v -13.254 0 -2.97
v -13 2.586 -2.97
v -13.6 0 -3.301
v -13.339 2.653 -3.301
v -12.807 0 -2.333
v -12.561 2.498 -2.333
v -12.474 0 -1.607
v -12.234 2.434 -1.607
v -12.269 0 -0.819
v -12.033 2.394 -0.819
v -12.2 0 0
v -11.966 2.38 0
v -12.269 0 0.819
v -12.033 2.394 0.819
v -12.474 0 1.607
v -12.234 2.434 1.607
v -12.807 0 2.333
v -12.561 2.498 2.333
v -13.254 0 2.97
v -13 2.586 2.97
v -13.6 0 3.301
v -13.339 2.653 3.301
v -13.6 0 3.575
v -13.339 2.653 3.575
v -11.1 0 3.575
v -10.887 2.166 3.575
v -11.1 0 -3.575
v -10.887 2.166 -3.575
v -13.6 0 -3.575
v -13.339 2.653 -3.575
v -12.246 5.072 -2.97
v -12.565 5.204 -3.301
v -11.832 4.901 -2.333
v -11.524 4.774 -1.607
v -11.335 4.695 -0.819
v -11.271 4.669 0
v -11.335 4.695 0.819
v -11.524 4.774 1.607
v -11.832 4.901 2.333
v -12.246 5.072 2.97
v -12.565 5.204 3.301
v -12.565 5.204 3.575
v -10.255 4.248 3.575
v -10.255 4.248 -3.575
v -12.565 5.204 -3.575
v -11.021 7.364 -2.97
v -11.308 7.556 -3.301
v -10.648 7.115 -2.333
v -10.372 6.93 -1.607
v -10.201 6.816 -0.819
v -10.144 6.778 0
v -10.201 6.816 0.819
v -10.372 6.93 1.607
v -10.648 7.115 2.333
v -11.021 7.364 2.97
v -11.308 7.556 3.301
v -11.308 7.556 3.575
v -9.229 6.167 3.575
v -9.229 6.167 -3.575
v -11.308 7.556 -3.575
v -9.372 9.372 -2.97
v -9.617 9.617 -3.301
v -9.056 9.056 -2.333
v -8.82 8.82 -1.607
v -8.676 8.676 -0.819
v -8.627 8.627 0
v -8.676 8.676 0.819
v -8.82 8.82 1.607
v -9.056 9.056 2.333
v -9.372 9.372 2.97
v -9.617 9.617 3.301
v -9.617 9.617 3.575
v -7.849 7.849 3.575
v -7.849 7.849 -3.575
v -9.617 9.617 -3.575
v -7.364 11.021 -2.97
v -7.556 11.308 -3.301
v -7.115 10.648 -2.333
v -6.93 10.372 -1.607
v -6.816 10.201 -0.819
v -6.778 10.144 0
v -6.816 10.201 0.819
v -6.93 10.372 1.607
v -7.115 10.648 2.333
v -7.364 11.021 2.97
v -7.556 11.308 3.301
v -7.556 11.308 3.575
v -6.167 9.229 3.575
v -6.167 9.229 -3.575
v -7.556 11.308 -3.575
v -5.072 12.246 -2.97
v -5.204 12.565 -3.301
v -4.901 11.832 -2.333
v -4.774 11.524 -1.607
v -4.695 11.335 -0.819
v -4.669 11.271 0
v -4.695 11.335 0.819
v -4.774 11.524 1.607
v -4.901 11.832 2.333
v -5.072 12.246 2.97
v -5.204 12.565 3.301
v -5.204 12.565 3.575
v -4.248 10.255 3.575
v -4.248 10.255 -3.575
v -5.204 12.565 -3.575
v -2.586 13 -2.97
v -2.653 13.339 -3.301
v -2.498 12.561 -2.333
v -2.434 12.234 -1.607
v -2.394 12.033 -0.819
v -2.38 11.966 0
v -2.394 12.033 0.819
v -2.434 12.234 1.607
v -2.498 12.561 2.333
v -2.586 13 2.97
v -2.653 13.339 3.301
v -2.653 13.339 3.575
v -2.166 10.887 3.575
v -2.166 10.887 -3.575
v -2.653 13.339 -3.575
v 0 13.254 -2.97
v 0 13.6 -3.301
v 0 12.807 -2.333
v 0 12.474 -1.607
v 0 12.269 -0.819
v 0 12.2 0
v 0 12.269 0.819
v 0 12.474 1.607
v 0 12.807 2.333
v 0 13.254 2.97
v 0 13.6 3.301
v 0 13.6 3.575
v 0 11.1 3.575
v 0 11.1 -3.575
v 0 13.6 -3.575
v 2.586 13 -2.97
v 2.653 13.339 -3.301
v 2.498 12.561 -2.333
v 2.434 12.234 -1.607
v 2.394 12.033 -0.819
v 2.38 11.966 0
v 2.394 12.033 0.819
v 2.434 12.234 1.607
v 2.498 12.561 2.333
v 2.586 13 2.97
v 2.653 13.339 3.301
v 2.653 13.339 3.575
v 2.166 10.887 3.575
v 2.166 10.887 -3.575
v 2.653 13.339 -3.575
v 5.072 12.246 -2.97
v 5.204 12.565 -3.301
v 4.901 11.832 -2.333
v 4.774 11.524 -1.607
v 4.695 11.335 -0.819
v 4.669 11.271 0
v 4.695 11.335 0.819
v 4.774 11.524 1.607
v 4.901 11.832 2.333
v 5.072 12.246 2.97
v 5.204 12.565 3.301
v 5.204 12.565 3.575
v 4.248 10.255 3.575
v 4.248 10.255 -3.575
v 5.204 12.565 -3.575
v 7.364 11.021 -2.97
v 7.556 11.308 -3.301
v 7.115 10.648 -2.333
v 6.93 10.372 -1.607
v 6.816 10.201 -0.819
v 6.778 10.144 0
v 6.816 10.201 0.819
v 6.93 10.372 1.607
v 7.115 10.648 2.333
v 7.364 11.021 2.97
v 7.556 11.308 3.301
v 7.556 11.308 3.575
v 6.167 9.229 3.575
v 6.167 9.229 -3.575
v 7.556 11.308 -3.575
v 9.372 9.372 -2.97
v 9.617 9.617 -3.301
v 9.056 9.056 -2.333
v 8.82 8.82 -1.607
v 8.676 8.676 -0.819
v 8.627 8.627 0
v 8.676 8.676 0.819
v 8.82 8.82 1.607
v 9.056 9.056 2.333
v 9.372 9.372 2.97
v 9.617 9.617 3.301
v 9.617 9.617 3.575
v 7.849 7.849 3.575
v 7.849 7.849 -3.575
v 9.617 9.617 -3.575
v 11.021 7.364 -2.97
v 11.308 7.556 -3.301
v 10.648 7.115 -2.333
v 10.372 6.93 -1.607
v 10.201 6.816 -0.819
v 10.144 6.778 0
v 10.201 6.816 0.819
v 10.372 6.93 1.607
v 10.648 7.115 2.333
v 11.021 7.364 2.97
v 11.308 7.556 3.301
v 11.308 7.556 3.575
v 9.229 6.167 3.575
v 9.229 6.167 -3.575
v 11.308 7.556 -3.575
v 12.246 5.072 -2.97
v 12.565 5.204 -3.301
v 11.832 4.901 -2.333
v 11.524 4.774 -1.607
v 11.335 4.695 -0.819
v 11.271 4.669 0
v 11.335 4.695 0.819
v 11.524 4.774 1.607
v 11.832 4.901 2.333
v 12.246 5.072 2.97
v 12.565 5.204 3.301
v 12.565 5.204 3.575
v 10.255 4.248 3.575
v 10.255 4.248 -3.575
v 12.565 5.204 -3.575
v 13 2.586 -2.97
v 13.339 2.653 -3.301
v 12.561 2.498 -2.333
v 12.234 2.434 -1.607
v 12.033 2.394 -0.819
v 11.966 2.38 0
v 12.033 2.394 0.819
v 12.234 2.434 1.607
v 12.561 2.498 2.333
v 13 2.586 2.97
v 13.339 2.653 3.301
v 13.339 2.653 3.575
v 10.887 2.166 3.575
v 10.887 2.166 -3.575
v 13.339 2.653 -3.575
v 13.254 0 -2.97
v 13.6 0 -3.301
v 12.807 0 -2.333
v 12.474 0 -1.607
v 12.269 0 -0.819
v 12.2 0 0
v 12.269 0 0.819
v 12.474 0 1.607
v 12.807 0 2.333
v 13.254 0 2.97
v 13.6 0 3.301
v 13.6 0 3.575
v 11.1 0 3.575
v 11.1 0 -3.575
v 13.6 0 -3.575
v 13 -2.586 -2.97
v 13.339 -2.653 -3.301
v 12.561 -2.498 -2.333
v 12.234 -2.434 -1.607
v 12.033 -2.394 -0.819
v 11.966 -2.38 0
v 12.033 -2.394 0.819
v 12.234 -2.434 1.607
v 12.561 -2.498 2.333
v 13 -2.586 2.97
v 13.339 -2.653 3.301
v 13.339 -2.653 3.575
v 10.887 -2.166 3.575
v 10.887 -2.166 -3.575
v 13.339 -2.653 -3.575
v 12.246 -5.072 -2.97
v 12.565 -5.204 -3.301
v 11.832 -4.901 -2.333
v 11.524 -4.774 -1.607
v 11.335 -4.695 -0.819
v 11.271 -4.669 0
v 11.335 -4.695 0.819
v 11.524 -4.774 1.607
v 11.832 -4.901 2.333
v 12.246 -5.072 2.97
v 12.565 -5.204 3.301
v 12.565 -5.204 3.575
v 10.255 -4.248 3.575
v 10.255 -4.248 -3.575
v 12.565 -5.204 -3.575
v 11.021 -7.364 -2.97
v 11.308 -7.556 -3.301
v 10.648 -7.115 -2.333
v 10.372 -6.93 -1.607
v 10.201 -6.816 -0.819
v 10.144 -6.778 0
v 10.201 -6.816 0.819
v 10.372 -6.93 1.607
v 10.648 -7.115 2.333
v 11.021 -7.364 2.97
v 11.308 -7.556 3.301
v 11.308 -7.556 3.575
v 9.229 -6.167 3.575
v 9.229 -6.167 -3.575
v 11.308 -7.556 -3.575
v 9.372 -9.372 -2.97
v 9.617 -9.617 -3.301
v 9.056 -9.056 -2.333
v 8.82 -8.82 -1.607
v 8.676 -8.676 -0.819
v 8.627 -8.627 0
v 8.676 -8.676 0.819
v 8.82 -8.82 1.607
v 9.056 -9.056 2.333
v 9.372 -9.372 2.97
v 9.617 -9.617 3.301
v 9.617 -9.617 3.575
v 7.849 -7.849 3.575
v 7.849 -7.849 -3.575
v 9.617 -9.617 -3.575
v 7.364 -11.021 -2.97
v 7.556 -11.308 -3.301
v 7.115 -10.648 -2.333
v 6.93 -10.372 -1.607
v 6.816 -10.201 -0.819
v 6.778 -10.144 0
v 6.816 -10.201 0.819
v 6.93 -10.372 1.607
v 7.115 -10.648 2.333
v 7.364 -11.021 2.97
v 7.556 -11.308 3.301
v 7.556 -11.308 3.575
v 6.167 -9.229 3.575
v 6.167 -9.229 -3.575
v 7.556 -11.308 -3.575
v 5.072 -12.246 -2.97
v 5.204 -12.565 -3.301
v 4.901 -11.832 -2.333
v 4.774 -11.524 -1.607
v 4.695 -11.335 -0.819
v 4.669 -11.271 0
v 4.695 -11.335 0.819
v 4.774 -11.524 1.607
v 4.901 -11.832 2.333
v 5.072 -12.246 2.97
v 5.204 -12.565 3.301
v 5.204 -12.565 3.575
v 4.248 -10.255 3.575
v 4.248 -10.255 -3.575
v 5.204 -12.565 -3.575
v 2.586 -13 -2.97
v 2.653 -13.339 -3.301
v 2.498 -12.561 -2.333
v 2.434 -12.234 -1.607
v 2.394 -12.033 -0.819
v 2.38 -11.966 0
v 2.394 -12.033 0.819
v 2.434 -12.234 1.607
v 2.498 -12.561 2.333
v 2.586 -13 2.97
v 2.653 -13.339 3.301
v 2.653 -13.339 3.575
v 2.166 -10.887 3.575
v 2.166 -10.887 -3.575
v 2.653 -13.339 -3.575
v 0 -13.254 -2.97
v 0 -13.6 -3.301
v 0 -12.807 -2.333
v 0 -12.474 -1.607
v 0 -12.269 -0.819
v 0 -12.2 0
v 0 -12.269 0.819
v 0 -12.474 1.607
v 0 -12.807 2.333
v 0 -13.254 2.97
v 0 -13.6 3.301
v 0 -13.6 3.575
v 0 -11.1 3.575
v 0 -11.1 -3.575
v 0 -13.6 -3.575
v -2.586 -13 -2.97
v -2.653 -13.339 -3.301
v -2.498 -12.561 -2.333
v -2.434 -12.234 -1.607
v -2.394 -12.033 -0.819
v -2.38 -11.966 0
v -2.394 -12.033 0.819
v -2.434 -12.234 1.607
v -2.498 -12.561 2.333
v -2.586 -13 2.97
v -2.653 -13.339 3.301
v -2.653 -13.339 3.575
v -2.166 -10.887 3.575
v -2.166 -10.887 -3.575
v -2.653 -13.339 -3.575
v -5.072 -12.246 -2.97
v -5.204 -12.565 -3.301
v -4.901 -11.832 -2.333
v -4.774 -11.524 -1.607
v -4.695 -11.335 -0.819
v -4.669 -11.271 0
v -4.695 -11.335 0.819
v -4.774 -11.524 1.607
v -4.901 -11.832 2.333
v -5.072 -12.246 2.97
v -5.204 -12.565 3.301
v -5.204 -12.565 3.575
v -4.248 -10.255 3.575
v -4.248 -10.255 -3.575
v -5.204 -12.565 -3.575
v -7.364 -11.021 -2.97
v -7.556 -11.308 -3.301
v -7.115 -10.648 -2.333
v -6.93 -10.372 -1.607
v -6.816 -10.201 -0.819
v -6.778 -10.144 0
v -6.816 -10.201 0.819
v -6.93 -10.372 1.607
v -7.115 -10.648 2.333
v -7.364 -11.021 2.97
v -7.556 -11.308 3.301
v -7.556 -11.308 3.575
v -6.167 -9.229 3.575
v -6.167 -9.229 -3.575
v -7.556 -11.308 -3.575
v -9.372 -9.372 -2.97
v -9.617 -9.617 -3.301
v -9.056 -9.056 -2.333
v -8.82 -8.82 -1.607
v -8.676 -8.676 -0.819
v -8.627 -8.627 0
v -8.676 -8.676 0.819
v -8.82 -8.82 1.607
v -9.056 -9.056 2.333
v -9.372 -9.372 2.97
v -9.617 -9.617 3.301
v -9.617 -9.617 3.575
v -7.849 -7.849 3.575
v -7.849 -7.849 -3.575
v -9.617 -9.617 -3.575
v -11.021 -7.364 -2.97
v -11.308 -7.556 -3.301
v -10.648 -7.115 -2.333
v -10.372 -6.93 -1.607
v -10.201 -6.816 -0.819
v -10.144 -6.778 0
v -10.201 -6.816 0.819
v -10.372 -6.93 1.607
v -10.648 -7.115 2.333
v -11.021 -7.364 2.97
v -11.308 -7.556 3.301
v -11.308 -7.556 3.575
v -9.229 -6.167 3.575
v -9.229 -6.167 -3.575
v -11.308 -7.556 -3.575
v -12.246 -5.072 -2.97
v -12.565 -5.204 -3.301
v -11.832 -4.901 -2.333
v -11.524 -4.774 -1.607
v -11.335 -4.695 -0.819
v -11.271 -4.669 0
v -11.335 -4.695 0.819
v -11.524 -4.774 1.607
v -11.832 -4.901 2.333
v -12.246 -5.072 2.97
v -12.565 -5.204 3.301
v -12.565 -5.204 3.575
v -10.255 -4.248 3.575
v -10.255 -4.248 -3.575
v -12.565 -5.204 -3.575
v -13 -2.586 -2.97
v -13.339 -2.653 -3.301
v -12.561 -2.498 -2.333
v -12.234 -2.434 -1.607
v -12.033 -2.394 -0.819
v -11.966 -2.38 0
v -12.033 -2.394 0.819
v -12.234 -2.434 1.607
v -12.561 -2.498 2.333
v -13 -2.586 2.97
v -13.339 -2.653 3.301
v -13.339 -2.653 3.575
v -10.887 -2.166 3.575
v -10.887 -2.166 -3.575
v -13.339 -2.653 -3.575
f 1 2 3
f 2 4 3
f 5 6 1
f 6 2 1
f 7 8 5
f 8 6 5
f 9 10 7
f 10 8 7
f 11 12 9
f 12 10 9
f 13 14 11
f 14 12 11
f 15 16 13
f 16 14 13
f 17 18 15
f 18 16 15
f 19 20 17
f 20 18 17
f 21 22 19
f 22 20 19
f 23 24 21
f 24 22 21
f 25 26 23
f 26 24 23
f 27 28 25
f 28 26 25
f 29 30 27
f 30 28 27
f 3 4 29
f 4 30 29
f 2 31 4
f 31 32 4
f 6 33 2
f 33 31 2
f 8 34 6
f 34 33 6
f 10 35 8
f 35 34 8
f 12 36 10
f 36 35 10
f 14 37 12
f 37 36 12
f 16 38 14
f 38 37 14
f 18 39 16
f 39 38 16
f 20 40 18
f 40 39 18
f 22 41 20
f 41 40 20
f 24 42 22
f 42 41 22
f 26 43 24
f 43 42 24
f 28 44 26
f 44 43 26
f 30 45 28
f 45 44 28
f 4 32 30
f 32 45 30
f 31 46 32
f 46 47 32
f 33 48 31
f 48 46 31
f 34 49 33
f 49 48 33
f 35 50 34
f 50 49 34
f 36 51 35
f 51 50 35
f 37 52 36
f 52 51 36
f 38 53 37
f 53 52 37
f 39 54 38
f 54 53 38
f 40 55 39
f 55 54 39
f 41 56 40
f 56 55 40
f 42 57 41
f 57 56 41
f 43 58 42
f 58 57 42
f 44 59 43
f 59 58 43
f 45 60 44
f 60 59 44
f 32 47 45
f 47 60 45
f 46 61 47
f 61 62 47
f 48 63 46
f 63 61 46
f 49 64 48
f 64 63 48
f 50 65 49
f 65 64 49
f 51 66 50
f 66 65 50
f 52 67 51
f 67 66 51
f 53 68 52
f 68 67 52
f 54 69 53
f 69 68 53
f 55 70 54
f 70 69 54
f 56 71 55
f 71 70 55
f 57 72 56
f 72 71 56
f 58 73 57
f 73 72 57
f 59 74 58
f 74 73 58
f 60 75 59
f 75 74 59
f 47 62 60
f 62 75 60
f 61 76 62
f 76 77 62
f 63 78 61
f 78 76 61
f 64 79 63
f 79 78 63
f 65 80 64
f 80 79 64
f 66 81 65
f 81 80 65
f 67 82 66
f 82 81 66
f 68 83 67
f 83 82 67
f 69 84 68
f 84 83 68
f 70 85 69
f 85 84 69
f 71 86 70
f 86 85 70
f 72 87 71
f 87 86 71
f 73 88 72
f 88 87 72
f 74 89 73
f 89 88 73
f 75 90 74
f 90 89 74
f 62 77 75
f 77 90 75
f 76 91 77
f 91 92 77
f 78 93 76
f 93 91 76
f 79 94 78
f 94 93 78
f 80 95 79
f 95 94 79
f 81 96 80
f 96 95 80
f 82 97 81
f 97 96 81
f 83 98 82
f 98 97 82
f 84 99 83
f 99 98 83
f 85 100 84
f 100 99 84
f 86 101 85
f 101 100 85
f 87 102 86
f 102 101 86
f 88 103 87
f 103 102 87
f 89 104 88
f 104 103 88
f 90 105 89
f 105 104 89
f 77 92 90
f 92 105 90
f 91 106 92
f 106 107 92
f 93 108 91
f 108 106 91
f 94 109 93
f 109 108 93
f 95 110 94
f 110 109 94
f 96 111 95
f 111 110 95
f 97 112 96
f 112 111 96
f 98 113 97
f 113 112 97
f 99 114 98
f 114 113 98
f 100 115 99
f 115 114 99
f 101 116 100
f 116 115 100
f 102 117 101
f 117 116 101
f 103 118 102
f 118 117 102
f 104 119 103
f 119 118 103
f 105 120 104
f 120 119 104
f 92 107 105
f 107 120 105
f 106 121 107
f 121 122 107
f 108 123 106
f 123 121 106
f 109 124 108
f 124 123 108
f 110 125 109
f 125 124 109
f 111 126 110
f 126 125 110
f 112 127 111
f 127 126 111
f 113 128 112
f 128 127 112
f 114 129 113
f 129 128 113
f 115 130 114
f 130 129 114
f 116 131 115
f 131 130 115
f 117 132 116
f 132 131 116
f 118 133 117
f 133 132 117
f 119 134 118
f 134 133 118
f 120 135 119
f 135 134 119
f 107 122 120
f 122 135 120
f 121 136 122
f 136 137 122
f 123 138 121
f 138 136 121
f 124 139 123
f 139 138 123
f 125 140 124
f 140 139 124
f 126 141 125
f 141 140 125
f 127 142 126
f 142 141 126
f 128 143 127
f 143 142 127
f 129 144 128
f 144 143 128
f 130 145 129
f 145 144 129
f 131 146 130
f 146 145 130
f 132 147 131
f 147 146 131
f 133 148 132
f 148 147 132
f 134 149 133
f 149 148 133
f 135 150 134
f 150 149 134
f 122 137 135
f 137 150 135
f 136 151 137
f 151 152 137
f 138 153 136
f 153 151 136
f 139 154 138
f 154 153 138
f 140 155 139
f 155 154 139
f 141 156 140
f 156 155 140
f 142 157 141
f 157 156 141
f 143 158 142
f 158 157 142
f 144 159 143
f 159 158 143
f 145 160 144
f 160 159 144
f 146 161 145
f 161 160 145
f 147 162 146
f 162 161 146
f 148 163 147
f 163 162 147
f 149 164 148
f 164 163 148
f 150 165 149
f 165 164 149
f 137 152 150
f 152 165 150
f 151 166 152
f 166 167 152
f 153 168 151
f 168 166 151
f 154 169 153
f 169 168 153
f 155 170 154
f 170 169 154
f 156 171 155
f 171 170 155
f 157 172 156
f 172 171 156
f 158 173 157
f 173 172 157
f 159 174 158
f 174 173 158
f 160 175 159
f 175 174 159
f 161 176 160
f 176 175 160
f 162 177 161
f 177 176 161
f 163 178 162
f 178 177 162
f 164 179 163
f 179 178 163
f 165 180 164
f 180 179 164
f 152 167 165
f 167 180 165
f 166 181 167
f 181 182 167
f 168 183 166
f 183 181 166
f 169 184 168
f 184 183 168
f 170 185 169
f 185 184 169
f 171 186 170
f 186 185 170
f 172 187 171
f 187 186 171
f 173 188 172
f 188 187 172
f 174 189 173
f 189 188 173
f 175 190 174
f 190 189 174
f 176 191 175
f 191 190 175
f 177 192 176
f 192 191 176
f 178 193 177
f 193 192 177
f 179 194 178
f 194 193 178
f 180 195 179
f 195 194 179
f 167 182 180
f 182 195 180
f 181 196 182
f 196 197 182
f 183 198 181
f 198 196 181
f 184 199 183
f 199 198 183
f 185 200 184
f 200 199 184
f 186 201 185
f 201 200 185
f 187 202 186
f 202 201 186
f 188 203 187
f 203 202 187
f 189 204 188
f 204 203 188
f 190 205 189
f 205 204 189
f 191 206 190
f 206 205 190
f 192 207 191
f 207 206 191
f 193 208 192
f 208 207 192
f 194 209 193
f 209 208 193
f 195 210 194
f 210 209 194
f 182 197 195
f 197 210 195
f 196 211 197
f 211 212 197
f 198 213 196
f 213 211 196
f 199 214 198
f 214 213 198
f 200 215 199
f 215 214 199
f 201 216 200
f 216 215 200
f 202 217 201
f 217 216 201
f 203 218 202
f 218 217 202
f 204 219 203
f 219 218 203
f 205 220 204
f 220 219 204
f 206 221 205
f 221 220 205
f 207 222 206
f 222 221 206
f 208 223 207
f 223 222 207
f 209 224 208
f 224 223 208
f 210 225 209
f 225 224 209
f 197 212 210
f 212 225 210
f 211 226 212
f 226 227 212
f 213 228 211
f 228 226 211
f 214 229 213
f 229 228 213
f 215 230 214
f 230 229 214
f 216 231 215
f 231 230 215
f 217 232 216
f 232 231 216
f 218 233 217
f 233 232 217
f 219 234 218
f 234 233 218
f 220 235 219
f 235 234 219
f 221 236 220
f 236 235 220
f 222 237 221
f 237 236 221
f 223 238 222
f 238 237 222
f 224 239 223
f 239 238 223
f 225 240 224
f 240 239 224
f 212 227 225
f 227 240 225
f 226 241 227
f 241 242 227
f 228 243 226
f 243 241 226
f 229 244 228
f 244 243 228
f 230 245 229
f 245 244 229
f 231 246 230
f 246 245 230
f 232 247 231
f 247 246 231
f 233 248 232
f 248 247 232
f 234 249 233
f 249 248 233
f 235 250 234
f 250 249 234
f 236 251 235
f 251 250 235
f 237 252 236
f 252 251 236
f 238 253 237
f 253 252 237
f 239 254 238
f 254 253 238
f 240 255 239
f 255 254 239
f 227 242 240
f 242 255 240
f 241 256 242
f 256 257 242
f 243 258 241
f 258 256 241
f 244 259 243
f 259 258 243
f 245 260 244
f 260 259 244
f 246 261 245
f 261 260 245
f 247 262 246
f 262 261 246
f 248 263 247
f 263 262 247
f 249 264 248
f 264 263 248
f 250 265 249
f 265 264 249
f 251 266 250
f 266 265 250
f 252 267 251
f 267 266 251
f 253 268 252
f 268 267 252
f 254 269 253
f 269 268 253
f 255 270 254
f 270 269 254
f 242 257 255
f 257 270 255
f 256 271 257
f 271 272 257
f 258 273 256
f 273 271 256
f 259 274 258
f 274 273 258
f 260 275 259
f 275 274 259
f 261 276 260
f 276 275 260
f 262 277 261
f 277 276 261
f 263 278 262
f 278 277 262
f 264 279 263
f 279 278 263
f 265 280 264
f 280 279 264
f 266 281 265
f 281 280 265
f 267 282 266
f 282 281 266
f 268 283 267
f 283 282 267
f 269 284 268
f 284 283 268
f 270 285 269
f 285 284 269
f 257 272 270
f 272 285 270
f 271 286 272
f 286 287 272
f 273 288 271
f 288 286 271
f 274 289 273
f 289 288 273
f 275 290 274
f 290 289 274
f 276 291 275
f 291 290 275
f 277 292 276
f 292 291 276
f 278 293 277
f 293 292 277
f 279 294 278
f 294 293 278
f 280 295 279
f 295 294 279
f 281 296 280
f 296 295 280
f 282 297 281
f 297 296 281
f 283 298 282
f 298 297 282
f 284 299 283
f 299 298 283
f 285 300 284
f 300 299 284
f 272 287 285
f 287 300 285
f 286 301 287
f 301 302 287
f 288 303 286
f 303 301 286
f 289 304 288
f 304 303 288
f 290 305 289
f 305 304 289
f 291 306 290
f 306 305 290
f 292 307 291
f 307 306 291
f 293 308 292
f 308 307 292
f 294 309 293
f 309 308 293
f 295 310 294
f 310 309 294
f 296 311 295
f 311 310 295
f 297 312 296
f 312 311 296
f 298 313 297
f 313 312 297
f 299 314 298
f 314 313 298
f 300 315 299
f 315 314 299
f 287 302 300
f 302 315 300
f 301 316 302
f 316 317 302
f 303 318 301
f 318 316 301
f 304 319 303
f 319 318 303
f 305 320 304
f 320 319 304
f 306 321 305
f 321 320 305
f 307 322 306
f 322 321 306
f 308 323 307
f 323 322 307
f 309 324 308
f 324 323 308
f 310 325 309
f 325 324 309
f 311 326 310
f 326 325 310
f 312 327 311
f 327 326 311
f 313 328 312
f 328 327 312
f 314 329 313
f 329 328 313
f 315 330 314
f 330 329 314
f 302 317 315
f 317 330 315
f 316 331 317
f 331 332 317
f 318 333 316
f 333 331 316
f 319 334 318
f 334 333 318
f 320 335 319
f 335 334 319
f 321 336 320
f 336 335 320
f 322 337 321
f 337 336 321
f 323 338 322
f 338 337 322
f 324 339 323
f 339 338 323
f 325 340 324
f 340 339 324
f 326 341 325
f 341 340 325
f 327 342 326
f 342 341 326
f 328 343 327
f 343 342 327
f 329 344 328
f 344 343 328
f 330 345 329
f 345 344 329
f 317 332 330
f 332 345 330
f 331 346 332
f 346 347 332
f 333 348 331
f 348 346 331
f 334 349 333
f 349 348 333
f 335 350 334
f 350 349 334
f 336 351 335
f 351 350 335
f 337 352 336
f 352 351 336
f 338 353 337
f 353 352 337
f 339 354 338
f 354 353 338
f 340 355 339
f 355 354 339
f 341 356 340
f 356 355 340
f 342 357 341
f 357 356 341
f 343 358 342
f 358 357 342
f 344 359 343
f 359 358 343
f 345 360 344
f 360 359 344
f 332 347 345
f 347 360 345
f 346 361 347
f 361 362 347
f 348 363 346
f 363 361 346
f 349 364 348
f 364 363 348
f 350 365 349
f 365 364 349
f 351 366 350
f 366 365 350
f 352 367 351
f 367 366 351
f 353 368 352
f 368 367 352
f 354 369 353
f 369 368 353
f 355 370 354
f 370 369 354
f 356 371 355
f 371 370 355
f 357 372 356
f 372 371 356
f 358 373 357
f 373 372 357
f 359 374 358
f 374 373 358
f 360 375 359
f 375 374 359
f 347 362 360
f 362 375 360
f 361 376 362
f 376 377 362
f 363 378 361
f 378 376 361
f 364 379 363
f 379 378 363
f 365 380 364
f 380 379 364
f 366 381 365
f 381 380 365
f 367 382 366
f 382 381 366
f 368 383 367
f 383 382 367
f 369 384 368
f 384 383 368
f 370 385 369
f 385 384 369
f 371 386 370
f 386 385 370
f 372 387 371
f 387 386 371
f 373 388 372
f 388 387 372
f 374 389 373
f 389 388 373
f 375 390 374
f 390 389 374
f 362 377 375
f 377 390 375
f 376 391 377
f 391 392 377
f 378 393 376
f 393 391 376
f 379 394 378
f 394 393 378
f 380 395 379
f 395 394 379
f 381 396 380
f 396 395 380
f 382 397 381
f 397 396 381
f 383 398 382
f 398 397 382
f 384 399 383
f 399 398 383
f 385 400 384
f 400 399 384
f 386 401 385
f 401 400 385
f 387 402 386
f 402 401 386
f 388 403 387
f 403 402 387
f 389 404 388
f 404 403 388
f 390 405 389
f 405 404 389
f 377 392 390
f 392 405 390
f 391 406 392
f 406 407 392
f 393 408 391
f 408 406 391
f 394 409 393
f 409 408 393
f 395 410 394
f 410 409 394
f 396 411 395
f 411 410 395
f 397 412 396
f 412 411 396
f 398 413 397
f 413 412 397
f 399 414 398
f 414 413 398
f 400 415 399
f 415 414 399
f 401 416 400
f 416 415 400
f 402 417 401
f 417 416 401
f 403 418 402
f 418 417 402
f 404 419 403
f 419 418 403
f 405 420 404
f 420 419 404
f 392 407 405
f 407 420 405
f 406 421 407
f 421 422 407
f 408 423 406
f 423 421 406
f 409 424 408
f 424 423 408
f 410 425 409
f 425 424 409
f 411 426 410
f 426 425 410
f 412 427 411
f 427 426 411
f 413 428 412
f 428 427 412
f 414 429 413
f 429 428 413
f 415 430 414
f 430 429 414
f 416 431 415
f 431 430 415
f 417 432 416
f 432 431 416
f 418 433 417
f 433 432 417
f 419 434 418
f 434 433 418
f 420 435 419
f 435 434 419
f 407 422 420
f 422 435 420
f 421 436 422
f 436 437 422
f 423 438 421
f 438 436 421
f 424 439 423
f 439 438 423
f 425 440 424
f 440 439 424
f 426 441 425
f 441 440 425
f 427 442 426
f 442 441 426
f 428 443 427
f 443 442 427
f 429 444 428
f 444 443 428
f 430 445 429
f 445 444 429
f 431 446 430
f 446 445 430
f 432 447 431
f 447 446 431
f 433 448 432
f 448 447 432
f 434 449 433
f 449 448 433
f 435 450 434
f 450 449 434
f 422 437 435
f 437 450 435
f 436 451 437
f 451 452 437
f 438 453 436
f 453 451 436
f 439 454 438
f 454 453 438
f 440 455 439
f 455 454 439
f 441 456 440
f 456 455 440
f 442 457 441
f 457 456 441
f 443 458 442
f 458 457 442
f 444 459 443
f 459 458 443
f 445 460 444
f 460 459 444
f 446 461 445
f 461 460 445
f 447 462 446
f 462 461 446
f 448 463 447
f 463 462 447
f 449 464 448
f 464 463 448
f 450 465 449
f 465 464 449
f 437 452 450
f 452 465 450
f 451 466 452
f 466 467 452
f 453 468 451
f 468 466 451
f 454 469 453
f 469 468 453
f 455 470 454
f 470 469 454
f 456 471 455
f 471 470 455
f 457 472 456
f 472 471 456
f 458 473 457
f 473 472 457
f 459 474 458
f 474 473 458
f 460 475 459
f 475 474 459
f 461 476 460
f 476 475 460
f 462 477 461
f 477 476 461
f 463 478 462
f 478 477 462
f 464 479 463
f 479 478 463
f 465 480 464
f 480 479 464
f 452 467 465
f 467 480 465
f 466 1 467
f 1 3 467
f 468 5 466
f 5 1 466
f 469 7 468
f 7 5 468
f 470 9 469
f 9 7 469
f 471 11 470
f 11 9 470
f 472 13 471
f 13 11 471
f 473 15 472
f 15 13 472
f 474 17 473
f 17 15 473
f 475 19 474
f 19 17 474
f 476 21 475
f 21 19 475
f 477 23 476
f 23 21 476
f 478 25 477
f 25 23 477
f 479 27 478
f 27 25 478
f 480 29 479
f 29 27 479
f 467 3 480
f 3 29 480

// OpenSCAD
// file: lib/parameters.scad
// Parameters shared between modules
Base_th = 2;
Beam_width = 15;
Wiggle = 0.25;
Fat_beam_width = Beam_width + Wiggle;
Beam_length = 400;
Wall_th = 2.5;
Min_beam_width = 12.5;
Max_beam_width = 17.5;
Zip_th = 2;
Zip_h = Zip_th + Max_beam_width - Min_beam_width;
Zip_w = 5.0;
Nema17_cube_width          = 42.43;
Nema17_screw_hole_width    = 43.74; // Opposite corner screws
Nema17_ring_diameter       = 22;
Nema17_cube_height         = 39.36;
Nema17_shaft_height        = 63.65;
Nema17_ring_height         = 2;
Nema17_shaft_radius        = 5/2;
b608_outer_dia = 22.2;
b608_width = 7.05;
b608_bore_r = 4;
b608_vgroove_big_r = b608_outer_dia/2 + 2.5;
b608_vgroove_small_r = b608_outer_dia/2 + 0.5;
b608_ugroove_big_r = b608_vgroove_big_r;
b608_ugroove_small_r = b608_vgroove_small_r;
Gap_between_sandwich_and_plate = 1.5 + Base_th; // 1.5 mm for wiggle
Motor_bracket_flerp_r = 6;
Motor_bracket_flerp = 14;
Motor_bracket_cw = Nema17_cube_width + 6;
Motor_bracket_att_ang = 50;
Mounting_screw_d = 3.5;
Mounting_screw_head_d = 14;
Spool_outer_wall_th = 4;

// Corner clamp parameters
Cc_l1 = (Fat_beam_width+2*Wall_th)*2*sqrt(3);
Cc_rad_b = 4;
Cc_action_point_from_mid = Cc_l1/sqrt(3)-2*Cc_rad_b-7;
Cc_plastic_length = sqrt(Cc_action_point_from_mid*Cc_action_point_from_mid
                       - (Cc_action_point_from_mid/2)*(Cc_action_point_from_mid/2));
Eyelet_extra_dist = 0.75;
Eyelet_diameter = 4.30;
Move_d_bearings_inwards = -2;

// The distance between the two action points on the mover
Sidelength = Beam_length + 2*Cc_plastic_length;

/////// Gear parameters ////////////
Circular_pitch = 262;
Motor_teeth = 10;
Gear_height = 21.4-3;
Motor_pitch                      = (Motor_teeth*Circular_pitch/360);
Motor_pitch_diametrial           = Motor_teeth/(2*Motor_pitch);
Motor_outer_radius               = Motor_pitch + 1/Motor_pitch_diametrial;
Spool_teeth = 100;
Spool_r = 75;
Spool_height = 8;
Spool_pitch                      = (Spool_teeth*Circular_pitch/360);
Spool_pitch_diametrial           = Spool_teeth/(2*Spool_pitch);
Spool_outer_radius               = Spool_pitch + 1/Spool_pitch_diametrial;
Sep_disc_radius = (161.83+1)/2; // Made to match 255 teeth gt2 pulley + 1
Motor_bracket_depth = Gear_height+1+7+Nema17_ring_height+1+Gap_between_sandwich_and_plate;
Spool_core_flerp0 = 16+3;

/////// Lineroller parameters ////////////
b623_width  = 4;
b623_bore_r = 3/2;
b623_big_ugroove_big_r = (12+3)/2;
b623_big_ugroove_small_r = (10+3)/2;
b623_outer_dia = 10;
b623_ugroove_room_to_grow_r = 1.1;
b608_ugroove_room_to_grow_r = 1.1;
b623_flange_dia = 11.5;
b623_flange_room_to_grow_r = 0.5;

Depth_of_roller_base = 18;
Roller_flerp = 6;
Roller_l = 42;
Roller_fl = (Roller_l - Depth_of_roller_base)/2;

Line_roller_wall_th = 5;

Line_roller_ABC_winch_h =  Gap_between_sandwich_and_plate
                           + Sep_disc_radius
                           - Spool_r
                           + Depth_of_roller_base/2
                           + b608_vgroove_small_r;

Shear_line_roller_double_bearings = 21;

Ptfe_r = 2.1;
Roller_base_r = 8;
Screw_h = 2;
Screw_head_h = 2;
M3_screw_head_d = 5.8;
Spool_center_bearing_wall_th = 5;
Corner_clamp_bearings_center_to_center = max(15, (b623_big_ugroove_big_r + b623_ugroove_room_to_grow_r)*2 + 5);
Anchor_bearings_center_to_center = Corner_clamp_bearings_center_to_center + b623_outer_dia;

//// Lineroller anchor parameters /////

Back_bearing_x = 6 + 1.5;
Front_bearing_x = -6 - 5;
Move_tower = -12.2;
Lower_bearing_z = 13;
Higher_bearing_z = Lower_bearing_z + Corner_clamp_bearings_center_to_center;

//// Cable Clamp parameters /////
Bit_width = 12;
Cable_r=2.5;

// Belt drive parameters
GT2_belt_width = 6.5;
GT2_gear_height = GT2_belt_width + 2;
GT2_motor_gear_height = 16;
GT2_motor_gear_outer_dia = 16;
GT2_spool_gear_teeth = 255;
GT2_motor_gear_teeth = 20;
Torx_depth = GT2_gear_height/2;
Belt_roller_h = 56;
Belt_thickness = 1.4;

Belt_roller_space_between_walls = 2*b623_width + 0.8;
Belt_roller_wall_th = (Depth_of_roller_base - Belt_roller_space_between_walls)/2+2;
Belt_roller_top_adj_screw_x = Depth_of_roller_base/2-3.7;
Belt_roller_top_adj_screw_y = Belt_roller_space_between_walls/2+2;
Belt_roller_containing_cube_ywidth = Belt_roller_space_between_walls+8.5;
Belt_roller_containing_cube_xwidth = 14;
Belt_roller_insert_h = 18;

Sandwich_ABC_width = 2*(1+Spool_height) + GT2_gear_height;
Sandwich_D_width = 4*(1+Spool_height) + GT2_gear_height;
Spool_core_halve_width = 14.3;
Spool_core_impression_in_spool_cover = 0;
Spool_cover_bottom_th = 1.5;
Spool_cover_shoulder = 2;
Spool_core_cover_adj = Spool_cover_shoulder+Spool_cover_bottom_th-Spool_core_impression_in_spool_cover;
Spool_core_tot_length = 136.458;
Spool_cover_outer_r = Sep_disc_radius + 2;
Gap_between_sep_disc_and_spool_cover = 0.55;

Smooth_rod_length_ABC = Sandwich_ABC_width + 2*(Spool_core_halve_width-Spool_core_impression_in_spool_cover + Spool_cover_bottom_th + Spool_cover_shoulder);
Smooth_rod_length_D = Sandwich_D_width + 2*(Spool_core_halve_width-Spool_core_impression_in_spool_cover + Spool_cover_bottom_th + Spool_cover_shoulder);
echo("Smooth_rod_length_ABC", Smooth_rod_length_ABC);
echo("Smooth_rod_length_D", Smooth_rod_length_D);

Spool_cover_tot_height = Spool_cover_bottom_th+Spool_cover_shoulder+1+Spool_height;
Spool_cover_D_left_tot_height = Spool_cover_shoulder+Spool_cover_bottom_th+1+Spool_height+1+Spool_height;

spd = Spool_height+GT2_gear_height;
// Horizontal_deflector_cube_y_size must be exact this number
// because we want to deflect AB-lines
// 60 degrees on the ceiling unit, and we want to put two
// deflectors in a row and get a distance between bearings
// that maintain the distance d when deflecting 60 degrees
Horizontal_deflector_cube_y_size = (2/sqrt(3))*spd;

Belt_roller_bearing_xpos = Sep_disc_radius + b623_outer_dia/2+Belt_thickness;


// Top plate parameters needed for layout slicer
Yshift_top_plate = -297.8;

Pen_holder_w = 55;
Pen_holder_rail_w = 36;
Pen_holder_bottom_th = 7;

Tilted_line_deflector_tilt = -atan(sqrt(2))-6;
Tilted_line_deflector_tilt_steeper = -atan(sqrt(2))-17;
// main file
include <lib/parameters.scad>

$fn=32;

inner_d = b608_outer_dia;
small_d = inner_d + 2;
big_d = b608_vgroove_big_r*2;
U_r = 3.7;
scl = [1.2, 1.4];


bearing_u_608();
module bearing_u_608(core=false){
  rotate_extrude(){
    difference(){
      translate([inner_d/2,-(b608_width+0.1)/2])
        square([(big_d-inner_d)/2, b608_width+0.1]);
      translate([U_r + small_d/2, 0])
        scale(scl)
          circle(d=6);
    }
  }
  if(core)
    cylinder(d=inner_d+0.2, h=b608_width-0.1, center=true);
}

//elong_b608_ugroove(elong=12, extra_height=0.8);
module elong_b608_ugroove(elong=10, extra_height=0){
  color("purple"){
    bearing_u_608(core=true);
    translate([0,elong,0])
      bearing_u_608(core=true);
    difference(){
      translate([-big_d/2, 0, -(b608_width-0.1)/2])
        cube([big_d, elong, b608_width-0.1]);
      for(k=[0,1]) mirror([k,0,0])
        rotate([-90,0,0])
          translate([U_r + small_d/2, 0, 0])
            scale(scl)
              translate([0,0,-1])
                cylinder(d=6, h=elong+2);
    }
    if(extra_height != 0) {
      for(k=[0,1]) mirror([0,0,k])
        hull(){
          translate([0,0,b608_width/2-0.1]){
            cylinder(d=big_d, h=extra_height/2+0.1);
            translate([0,elong,0])
              cylinder(d=big_d, h=extra_height/2+0.1);
          }
        }
    }
  }
}
